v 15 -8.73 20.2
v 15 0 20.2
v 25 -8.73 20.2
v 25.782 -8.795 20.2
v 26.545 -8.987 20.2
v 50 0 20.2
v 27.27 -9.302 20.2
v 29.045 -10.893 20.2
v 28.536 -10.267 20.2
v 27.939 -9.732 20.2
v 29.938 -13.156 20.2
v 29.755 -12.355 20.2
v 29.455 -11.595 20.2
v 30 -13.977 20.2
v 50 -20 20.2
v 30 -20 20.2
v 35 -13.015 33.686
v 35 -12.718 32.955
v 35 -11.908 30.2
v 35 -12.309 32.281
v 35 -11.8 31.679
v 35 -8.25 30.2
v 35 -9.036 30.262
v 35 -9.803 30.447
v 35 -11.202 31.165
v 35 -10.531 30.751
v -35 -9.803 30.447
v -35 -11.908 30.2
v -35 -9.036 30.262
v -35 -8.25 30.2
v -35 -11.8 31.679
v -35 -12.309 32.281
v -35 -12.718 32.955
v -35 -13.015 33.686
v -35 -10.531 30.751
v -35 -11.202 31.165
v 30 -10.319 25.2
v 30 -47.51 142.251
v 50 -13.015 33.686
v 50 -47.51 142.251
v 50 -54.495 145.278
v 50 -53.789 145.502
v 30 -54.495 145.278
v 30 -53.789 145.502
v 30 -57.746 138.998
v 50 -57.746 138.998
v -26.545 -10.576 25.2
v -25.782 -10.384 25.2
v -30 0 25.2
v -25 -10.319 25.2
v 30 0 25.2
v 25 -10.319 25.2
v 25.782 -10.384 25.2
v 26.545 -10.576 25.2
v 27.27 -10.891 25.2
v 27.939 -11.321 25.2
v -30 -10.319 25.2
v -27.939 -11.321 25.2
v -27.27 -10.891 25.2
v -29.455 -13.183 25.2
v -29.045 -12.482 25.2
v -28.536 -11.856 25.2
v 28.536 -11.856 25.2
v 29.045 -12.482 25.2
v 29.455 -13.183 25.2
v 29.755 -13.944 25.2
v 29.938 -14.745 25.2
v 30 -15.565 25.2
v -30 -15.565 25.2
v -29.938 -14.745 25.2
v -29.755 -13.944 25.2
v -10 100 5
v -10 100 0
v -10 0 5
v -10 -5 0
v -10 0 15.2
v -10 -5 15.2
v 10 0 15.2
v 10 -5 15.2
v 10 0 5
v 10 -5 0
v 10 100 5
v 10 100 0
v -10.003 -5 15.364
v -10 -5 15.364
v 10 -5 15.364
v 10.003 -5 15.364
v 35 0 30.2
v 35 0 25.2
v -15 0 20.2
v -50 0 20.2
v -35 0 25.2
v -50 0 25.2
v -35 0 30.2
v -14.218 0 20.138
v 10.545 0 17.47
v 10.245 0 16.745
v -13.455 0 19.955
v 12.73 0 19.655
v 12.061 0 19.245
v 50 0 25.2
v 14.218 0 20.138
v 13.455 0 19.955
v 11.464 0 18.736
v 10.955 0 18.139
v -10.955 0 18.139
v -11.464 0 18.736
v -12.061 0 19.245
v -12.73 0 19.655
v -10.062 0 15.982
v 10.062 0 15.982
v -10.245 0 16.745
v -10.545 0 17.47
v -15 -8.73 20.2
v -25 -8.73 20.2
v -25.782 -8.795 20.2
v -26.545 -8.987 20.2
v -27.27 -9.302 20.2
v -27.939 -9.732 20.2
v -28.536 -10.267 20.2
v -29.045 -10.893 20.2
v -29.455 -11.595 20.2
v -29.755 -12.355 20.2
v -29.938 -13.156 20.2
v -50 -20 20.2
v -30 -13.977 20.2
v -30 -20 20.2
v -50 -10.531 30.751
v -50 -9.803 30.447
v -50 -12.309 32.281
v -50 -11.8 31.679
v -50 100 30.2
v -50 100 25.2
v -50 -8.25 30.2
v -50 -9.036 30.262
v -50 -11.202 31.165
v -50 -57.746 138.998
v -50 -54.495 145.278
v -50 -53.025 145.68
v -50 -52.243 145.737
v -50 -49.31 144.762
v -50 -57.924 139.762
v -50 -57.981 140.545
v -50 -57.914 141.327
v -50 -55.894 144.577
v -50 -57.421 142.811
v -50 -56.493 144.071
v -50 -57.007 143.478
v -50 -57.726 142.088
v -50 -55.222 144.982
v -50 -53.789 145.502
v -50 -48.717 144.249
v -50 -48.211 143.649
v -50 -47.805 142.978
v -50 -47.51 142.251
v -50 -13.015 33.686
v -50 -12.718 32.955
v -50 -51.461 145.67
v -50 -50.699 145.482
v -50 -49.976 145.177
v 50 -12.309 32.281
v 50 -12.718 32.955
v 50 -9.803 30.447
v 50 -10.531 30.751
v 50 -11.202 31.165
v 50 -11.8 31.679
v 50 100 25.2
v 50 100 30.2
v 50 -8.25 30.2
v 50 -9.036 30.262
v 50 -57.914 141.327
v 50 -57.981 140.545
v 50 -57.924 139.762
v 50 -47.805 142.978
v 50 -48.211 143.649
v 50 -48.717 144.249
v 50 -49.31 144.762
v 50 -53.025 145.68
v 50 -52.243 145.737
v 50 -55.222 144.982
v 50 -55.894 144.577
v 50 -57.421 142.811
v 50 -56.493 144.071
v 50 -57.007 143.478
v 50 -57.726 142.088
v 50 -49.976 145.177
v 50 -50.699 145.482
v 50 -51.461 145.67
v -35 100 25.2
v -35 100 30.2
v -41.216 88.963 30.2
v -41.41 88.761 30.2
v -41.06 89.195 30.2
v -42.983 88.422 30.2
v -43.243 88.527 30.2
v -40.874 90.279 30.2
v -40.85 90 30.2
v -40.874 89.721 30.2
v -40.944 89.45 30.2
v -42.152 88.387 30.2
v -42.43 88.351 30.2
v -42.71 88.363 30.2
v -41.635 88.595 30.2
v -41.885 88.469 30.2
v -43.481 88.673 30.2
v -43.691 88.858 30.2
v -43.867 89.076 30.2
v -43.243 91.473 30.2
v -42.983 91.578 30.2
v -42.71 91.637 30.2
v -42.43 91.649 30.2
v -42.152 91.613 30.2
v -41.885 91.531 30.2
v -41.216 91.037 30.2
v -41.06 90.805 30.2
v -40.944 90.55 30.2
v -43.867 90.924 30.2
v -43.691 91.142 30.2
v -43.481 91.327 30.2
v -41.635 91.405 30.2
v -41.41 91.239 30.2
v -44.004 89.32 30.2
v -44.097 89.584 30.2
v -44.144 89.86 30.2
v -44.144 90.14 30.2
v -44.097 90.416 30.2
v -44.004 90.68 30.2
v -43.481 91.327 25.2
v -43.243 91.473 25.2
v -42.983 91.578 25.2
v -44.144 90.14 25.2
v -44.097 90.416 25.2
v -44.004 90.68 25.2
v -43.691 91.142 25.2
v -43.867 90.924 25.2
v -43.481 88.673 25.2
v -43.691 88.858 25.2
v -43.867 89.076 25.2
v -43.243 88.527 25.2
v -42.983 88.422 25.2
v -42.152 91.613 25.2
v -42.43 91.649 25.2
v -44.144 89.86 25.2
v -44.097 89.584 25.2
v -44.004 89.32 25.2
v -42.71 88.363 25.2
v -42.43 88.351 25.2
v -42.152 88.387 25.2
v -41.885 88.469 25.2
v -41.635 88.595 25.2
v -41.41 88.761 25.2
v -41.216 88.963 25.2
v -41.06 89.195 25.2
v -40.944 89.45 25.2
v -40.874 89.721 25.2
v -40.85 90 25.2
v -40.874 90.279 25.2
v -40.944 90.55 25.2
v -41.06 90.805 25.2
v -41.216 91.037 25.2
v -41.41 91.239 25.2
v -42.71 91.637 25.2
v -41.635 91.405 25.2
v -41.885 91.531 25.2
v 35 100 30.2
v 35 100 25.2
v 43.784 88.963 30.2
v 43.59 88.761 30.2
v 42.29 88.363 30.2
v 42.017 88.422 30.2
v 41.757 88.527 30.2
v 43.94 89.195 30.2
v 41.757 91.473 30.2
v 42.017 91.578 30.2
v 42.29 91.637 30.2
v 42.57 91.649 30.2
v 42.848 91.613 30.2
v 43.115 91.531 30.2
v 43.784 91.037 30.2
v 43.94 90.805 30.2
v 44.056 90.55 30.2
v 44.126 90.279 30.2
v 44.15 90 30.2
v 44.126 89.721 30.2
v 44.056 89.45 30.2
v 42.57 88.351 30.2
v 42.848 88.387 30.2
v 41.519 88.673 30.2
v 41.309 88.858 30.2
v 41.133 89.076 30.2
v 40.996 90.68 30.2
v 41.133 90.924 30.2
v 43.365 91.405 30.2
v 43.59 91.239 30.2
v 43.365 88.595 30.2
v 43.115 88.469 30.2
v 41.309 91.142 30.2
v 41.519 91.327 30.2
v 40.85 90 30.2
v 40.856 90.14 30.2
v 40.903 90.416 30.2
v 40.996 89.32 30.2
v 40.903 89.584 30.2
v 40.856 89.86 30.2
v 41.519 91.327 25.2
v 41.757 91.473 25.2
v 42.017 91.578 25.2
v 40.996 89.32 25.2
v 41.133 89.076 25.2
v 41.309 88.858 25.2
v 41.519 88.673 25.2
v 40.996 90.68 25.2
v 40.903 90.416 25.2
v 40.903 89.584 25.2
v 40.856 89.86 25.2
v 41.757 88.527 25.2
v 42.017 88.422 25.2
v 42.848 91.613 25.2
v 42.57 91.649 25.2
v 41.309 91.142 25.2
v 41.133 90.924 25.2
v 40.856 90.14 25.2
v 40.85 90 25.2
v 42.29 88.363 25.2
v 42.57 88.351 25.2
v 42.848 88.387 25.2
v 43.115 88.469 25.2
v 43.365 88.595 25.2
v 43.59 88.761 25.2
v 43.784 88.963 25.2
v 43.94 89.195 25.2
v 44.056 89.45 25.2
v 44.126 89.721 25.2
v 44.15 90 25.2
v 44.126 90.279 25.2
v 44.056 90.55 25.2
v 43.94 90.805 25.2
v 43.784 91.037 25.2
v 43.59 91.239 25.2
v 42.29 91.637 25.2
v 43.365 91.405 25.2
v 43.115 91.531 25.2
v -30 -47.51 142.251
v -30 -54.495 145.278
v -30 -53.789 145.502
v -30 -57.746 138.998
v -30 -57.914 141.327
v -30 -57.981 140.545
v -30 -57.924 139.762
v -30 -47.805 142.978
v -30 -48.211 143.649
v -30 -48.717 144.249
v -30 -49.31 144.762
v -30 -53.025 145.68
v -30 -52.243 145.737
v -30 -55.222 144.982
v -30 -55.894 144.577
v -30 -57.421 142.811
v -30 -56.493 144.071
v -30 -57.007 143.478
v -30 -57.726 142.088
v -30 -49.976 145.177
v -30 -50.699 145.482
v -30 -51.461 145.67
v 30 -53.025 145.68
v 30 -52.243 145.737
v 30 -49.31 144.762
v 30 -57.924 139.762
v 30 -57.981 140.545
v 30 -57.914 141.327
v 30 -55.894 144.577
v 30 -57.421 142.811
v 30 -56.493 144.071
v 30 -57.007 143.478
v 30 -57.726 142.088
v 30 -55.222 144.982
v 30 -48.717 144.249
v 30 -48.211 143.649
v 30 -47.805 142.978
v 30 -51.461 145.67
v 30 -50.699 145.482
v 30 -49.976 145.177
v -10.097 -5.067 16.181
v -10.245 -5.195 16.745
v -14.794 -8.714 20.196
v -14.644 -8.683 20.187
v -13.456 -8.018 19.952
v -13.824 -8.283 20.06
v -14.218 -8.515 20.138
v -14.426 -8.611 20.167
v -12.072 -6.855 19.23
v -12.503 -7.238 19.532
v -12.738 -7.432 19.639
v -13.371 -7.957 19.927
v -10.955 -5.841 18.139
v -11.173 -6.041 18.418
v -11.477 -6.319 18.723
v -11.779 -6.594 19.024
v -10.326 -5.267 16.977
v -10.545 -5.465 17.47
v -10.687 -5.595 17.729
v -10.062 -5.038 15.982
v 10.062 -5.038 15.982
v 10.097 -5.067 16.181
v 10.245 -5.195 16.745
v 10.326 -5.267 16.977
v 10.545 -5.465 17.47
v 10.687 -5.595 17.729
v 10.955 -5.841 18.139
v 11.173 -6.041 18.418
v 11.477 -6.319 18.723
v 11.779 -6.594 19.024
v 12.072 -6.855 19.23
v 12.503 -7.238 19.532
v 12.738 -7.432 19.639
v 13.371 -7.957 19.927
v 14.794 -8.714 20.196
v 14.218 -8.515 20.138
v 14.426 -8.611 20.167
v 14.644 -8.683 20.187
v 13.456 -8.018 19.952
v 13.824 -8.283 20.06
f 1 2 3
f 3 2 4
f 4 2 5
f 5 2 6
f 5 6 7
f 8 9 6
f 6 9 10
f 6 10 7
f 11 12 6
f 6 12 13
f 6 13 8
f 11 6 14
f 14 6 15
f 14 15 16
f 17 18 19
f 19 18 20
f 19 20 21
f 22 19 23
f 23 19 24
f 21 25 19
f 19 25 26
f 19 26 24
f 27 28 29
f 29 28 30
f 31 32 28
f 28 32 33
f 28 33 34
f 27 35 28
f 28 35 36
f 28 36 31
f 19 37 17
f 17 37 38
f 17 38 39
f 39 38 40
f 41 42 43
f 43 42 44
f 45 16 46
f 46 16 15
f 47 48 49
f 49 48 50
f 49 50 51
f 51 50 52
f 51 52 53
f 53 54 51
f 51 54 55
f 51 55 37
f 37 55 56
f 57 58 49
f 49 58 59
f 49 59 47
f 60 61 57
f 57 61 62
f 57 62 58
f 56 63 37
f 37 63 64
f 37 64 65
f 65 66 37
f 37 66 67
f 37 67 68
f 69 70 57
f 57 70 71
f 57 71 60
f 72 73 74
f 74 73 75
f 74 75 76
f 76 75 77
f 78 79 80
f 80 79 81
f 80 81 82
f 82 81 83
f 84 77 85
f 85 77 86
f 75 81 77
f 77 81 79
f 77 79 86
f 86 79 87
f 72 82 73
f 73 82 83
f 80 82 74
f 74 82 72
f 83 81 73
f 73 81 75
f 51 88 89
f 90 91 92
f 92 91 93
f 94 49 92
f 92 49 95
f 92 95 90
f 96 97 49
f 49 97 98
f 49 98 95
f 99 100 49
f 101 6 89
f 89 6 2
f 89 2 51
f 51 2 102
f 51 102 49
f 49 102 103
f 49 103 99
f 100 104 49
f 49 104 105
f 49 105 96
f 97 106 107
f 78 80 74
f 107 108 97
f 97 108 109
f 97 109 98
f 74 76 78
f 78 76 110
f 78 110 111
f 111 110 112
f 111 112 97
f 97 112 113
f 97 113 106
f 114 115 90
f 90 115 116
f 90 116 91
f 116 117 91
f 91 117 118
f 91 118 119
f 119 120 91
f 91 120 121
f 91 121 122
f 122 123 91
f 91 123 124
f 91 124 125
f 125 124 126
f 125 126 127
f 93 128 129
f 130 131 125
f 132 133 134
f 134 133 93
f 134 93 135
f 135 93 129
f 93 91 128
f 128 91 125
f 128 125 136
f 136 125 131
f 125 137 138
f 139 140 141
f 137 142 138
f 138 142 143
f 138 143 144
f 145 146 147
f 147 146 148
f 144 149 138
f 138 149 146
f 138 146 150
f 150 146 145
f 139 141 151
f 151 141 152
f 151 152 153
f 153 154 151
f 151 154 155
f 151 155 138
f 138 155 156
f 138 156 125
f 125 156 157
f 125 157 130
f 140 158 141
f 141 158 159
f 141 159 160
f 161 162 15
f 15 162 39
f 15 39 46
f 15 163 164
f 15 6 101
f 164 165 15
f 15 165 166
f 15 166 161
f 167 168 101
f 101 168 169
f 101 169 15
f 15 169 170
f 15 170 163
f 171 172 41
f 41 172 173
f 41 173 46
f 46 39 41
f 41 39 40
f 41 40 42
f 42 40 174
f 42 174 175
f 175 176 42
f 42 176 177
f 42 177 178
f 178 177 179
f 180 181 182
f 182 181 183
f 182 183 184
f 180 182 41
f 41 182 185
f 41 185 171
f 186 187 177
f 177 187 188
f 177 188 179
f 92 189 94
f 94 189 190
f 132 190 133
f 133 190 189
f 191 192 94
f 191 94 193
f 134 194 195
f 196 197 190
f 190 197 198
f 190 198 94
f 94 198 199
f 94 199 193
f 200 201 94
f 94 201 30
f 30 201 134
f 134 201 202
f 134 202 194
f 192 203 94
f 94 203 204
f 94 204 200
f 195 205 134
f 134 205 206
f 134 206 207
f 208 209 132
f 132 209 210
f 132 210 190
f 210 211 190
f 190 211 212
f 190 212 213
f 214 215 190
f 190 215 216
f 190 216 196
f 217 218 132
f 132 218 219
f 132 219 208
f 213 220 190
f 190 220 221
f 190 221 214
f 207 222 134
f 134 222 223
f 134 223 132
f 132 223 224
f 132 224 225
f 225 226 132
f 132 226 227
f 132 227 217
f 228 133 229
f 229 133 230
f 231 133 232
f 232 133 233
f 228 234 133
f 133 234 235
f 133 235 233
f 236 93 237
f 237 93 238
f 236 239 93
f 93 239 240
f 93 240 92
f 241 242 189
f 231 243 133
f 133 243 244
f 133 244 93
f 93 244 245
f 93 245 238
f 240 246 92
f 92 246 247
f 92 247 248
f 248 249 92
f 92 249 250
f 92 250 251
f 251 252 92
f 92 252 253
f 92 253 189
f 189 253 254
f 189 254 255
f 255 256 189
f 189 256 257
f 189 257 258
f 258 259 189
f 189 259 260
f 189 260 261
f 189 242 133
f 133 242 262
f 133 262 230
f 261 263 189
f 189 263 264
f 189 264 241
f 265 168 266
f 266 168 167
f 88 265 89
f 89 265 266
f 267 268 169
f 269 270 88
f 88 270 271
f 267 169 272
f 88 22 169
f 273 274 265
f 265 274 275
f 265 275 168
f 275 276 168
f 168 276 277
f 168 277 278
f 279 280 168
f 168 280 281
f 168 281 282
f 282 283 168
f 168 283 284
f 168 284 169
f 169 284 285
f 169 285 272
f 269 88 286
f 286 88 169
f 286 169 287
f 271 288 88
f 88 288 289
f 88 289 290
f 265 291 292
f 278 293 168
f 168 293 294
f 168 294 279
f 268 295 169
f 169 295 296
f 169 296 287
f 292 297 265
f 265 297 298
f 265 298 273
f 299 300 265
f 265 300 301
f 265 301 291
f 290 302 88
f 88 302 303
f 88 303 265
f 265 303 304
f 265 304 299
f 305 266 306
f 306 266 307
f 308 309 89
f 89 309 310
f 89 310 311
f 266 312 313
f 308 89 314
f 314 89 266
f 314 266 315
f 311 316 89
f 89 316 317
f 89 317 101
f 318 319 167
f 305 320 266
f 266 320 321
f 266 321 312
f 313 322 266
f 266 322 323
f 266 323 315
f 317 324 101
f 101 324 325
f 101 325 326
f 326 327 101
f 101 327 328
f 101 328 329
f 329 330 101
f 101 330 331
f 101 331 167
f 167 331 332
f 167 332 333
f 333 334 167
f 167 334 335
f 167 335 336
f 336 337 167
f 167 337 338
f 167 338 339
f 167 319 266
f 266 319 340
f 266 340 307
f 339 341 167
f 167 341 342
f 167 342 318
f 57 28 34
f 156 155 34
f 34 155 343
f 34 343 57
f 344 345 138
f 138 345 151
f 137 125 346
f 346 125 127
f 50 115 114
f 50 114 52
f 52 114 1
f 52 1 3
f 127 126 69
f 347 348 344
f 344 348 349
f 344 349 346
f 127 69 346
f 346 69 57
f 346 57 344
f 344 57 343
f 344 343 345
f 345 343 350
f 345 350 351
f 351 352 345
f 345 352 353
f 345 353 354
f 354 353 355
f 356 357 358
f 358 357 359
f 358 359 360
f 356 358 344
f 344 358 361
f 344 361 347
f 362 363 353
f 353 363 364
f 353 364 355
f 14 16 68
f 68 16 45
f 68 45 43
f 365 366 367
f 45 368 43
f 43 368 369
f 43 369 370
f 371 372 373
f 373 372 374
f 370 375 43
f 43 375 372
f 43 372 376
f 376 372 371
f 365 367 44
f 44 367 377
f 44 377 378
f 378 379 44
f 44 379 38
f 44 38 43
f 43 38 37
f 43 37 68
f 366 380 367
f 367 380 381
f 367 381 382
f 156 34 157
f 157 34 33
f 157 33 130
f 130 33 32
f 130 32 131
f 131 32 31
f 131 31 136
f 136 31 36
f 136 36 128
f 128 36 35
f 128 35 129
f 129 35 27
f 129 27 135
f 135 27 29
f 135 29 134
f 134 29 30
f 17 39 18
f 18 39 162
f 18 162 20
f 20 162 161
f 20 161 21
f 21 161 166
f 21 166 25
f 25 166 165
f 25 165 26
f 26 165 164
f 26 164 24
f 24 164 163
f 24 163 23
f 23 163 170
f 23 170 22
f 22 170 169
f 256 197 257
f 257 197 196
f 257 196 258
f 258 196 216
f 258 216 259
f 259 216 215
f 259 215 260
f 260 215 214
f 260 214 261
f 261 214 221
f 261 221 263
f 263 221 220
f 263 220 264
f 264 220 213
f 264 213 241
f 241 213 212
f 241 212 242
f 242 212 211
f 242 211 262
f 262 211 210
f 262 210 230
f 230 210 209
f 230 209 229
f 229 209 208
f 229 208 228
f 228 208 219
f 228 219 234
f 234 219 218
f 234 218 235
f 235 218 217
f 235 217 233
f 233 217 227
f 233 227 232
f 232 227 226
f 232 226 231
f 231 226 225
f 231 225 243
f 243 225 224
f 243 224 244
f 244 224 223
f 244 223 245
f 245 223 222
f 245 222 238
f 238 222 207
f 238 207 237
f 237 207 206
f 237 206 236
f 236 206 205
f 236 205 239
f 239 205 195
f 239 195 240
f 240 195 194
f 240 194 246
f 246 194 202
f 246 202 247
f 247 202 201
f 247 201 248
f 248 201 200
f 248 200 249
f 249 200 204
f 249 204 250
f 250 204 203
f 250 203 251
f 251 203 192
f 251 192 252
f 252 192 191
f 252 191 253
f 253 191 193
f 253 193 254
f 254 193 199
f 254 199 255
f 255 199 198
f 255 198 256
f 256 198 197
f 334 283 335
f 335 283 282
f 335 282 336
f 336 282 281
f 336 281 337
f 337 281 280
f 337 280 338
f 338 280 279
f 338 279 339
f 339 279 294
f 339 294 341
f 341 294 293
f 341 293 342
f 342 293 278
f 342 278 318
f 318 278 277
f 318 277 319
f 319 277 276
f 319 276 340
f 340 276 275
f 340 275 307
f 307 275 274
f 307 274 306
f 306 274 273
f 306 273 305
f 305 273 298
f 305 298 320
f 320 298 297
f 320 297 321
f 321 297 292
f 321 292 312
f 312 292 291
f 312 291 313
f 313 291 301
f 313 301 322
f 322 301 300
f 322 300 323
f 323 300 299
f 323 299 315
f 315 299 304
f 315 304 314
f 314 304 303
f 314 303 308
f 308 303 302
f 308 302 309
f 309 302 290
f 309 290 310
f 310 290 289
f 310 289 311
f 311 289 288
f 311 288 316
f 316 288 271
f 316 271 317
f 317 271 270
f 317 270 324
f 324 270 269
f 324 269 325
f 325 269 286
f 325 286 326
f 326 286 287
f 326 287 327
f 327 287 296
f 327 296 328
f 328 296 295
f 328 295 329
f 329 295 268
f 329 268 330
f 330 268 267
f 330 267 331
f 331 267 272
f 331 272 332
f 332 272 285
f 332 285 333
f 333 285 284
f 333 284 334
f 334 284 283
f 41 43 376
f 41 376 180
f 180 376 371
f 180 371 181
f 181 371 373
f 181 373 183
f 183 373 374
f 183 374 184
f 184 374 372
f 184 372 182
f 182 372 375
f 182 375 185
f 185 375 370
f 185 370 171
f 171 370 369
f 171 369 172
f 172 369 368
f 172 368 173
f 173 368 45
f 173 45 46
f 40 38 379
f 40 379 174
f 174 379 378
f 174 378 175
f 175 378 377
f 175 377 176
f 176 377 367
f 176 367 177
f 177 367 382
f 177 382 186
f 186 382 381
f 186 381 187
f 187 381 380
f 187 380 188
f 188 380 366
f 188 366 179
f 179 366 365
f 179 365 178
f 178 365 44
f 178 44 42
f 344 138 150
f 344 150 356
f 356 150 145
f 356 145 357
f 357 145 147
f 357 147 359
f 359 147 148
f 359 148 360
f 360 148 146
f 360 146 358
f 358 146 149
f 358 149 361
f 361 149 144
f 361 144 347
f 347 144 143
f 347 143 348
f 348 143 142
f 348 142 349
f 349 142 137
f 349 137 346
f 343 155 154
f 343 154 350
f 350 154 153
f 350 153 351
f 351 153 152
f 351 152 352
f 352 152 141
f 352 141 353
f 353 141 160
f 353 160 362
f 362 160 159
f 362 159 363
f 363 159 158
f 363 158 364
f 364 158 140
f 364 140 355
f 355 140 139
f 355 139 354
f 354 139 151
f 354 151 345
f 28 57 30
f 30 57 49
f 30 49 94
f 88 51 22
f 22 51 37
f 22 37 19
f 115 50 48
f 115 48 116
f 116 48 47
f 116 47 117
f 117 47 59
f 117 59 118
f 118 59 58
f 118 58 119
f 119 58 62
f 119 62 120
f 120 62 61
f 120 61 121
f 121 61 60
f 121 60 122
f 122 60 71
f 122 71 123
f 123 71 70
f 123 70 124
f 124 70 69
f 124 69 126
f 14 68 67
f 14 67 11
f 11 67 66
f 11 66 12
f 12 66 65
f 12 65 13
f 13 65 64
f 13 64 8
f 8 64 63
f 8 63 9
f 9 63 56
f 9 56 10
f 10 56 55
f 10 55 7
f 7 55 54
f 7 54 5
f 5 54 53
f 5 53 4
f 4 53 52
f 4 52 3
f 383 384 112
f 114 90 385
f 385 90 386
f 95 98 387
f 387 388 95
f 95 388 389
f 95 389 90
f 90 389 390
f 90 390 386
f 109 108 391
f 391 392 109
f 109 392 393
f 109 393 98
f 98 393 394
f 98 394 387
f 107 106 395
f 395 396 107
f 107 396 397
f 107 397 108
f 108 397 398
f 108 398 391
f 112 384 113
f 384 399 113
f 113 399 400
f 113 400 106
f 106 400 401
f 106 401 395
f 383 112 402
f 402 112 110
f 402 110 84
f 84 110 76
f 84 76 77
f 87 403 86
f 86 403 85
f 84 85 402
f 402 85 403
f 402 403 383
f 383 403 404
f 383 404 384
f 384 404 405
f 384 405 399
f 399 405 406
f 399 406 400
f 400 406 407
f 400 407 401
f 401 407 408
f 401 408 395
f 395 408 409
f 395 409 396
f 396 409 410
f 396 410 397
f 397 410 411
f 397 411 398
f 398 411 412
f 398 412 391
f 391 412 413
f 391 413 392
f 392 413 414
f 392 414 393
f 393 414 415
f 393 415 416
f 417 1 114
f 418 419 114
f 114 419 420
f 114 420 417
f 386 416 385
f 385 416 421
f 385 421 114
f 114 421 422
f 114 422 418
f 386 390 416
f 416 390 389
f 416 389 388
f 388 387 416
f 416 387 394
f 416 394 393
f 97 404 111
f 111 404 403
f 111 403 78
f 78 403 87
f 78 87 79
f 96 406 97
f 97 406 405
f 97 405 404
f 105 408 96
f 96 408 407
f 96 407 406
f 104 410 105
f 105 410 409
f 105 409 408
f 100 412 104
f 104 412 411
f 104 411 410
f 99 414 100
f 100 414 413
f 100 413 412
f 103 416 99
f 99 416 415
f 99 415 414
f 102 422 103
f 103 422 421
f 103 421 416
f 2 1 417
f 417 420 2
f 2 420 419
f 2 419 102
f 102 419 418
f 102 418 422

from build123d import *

# Parameters (mm, degrees)
EXTRUDE_1_DEPTH     = 5
EXTRUDE_2_DEPTH     = 5
EXTRUDE_3_DEPTH     = 5
EXTRUDE_4_DEPTH     = 5
EXTRUDE_5_DEPTH     = 50
CUT_EXTRUDE_1_DEPTH = 30
FILLET_1_R          = 5
SKETCH_6_R          = 1.6499999999999952
CUT_EXTRUDE_2_DEPTH = 60
FILLET_2_R          = 5
CHAMFER_1_SIZE      = 5
FILLET_3_R          = 5
FILLET_4_R          = 5


# Some blends are built 0.0001 mm under size
with BuildPart() as part:
    # 스케치1 → 보스-돌출1 (new body)
    with BuildSketch(Plane.XY):
        Polygon((-10.000000000000016, 100), (10.000000000000016, 100), (10.000000000000002, 0), (-10.000000000000002, 0), align=None)
    extrude(amount=EXTRUDE_1_DEPTH)

    # 스케치2 → 보스-돌출2 (add)
    with BuildSketch(Plane(origin=(0, 0, 0), x_dir=(1, 0, 0), z_dir=(0, 1, 0))):
        Polygon((-10.000000000000002, 0), (10.000000000000002, 0), (10.000000000000005, -25.2), (-9.999999999999998, -25.2), align=None)
    extrude(amount=-EXTRUDE_2_DEPTH)

    # 스케치3 → 보스-돌출3 (add)
    with BuildSketch(Plane.XY.offset(25.2)):
        Polygon((-50, 0), (50, 0), (50, -19.999999999999986), (-50, -20), align=None)
    extrude(amount=-EXTRUDE_3_DEPTH)

    # 스케치4 → 보스-돌출4 (add)
    with BuildSketch(Plane.XY.offset(25.2)):
        Polygon((50, -19.999999999999996), (35, -19.999999999999996), (34.99999999999999, 100.00000000000001), (49.999999999999986, 100.00000000000001), align=None)
        Polygon((-50.000000000000014, 100), (-35.000000000000014, 100), (-35, -19.999999999999996), (-50, -19.999999999999996), align=None)
    extrude(amount=EXTRUDE_4_DEPTH)

    # 스케치5 → 보스-돌출5 (add, symmetric)
    with BuildSketch(Plane(origin=(0, 0, 0), x_dir=(0, 0, -1), z_dir=(1, 0, 0))):
        Polygon((-20.2, -20), (-143.76355340335743, -59.26033642854078), (-147.01597593744285, -49.02402869306782), (-20.2, -8.730287191761477), align=None)
    extrude(amount=EXTRUDE_5_DEPTH, both=True)

    # 스케치5<3> → 컷-돌출1 (cut, symmetric)
    with BuildSketch(Plane(origin=(0, 0, 0), x_dir=(0, 0, -1), z_dir=(1, 0, 0))):
        Polygon((-20.2, -20), (-143.76355340335743, -59.26033642854078), (-147.01597593744285, -49.02402869306782), (-20.2, -8.730287191761477), align=None)
    extrude(amount=CUT_EXTRUDE_1_DEPTH, both=True, mode=Mode.SUBTRACT)

    # 필렛1
    fillet_1_edges = [part.edges().sort_by_distance(p)[0] for p in [
        (42.5, -11.90762673462655, 30.199999999999996),
        (-42.5, -11.90762673462655, 30.199999999999996),
    ]]
    fillet(fillet_1_edges, radius=FILLET_1_R)

    # 스케치6 → 컷-돌출2 (cut)
    with BuildSketch(Plane.XY.offset(30.200000000000003)):
        with Locations((-42.500000000000014, 90.00000000000001)):
            Circle(SKETCH_6_R)
        with Locations(Location((42.500000000000014, 90.00000000000001, 0), (0, 0, 180))):
            Circle(SKETCH_6_R)
    extrude(amount=-CUT_EXTRUDE_2_DEPTH, mode=Mode.SUBTRACT)

    # 필렛2
    fillet_2_edges = [part.edges().sort_by_distance(p)[0] for p in [
        (-40, -59.26033642854078, 143.76355340335743),
        (-40, -49.02402869306782, 147.01597593744285),
        (40, -49.02402869306782, 147.01597593744285),
        (40, -59.26033642854078, 143.76355340335743),
    ]]
    fillet(fillet_2_edges, radius=FILLET_2_R)

    # 모따기1
    chamfer_1_edges = [part.edges().sort_by_distance(p)[0] for p in [
        (-35, -5.159478481597006, 25.2),
        (35, -5.159478481597006, 25.2),
    ]]
    chamfer(chamfer_1_edges, length=CHAMFER_1_SIZE - 0.0001)  # a hair under: the kernel refuses the full size

    # 필렛3
    fillet_3_edges = [part.edges().sort_by_distance(p)[0] for p in [
        (30, -9.52462207747773, 22.699999999999974),
        (-30, -9.52462207747773, 22.699999999999974),
    ]]
    fillet(fillet_3_edges, radius=FILLET_3_R)

    # 필렛4
    # the kernel refuses this fillet: 5 mm, written as the material it adds along each edge
    with BuildSketch(Plane(origin=(10, -5, 20.2), x_dir=(1, -1.4e-16, 0), z_dir=(1.4e-16, 1, 0)), Plane(origin=(-10, 0, 20.2), x_dir=(-1, -1.4e-16, 0), z_dir=(1.4e-16, -1, 0))) as fillet_4_piece_1:
        with BuildLine():
            CenterArc((FILLET_4_R, FILLET_4_R), FILLET_4_R, 180, 90)
            Line((0, FILLET_4_R), (-FILLET_4_R * 0.02, FILLET_4_R))
            Line((-FILLET_4_R * 0.02, FILLET_4_R), (-FILLET_4_R * 0.02, -FILLET_4_R * 0.02))
            Line((-FILLET_4_R * 0.02, -FILLET_4_R * 0.02), (FILLET_4_R, -FILLET_4_R * 0.02))
            Line((FILLET_4_R, -FILLET_4_R * 0.02), (FILLET_4_R, 0))
        make_face()
    extrude(amount=5)
    with BuildSketch(Plane(origin=(-10.000000000000004, -5, 20.2), x_dir=(0, -1, 0), z_dir=(1, 0, 0))) as fillet_4_piece_2:
        with BuildLine():
            CenterArc((5, 4.8360965028207445), FILLET_4_R, 180, 75.28906399659809)
            Line((0, 4.8360965028207445), (-0.09999999999999964, 4.8360965028207445))
            Line((-0.09999999999999964, 4.8360965028207445), (-0.09999999999999964, 0))
            Line((-0.09999999999999964, 0), (0, -0.10000000000000142))
            ThreePointArc((0, -0.10000000000000142), (1.8651435958807383, -0.10000000000000142), (3.704892935596707, -0.0967219300564146))
            Line((3.704892935596707, -0.0967219300564146), (3.7302871917614766, 0))
        make_face()
    extrude(amount=20.000000000000007)
    with BuildSketch(Plane(origin=(-10.000000000000004, -5, 20.2), x_dir=(0, -1, 0), z_dir=(1, 0, 0))) as fillet_4_piece_3a_section:
        with BuildLine():
            CenterArc((5, 4.8360965028207445), FILLET_4_R, 180, 75.28906399659809)
            Line((0, 4.8360965028207445), (-0.09999999999999964, 4.8360965028207445))
            Line((-0.09999999999999964, 4.8360965028207445), (-0.09999999999999964, 0))
            Line((-0.09999999999999964, 0), (0, -0.10000000000000142))
            ThreePointArc((0, -0.10000000000000142), (1.8651435958807383, -0.10000000000000142), (3.704892935596707, -0.0967219300564146))
            Line((3.704892935596707, -0.0967219300564146), (3.7302871917614766, 0))
        make_face()
    fillet_4_piece_3a = extrude(amount=32.09024125705187, mode=Mode.PRIVATE)
    fillet_4_piece_3a = split(fillet_4_piece_3a, bisect_by=Plane(origin=(10.000000000000004, -5.000000000000003, 20.2), z_dir=(1, -1.4e-16, 0)), keep=Keep.TOP, mode=Mode.PRIVATE)
    with BuildSketch(Plane(origin=(9.999999999999998, -17.5, 20.2), x_dir=(1, -1.4e-16, 0), z_dir=(1.4e-16, 1, 0))) as fillet_4_piece_3b_section:
        with BuildLine():
            CenterArc((FILLET_4_R, FILLET_4_R), FILLET_4_R, 180, 90)
            Line((0, FILLET_4_R), (-FILLET_4_R * 0.02, FILLET_4_R))
            Line((-FILLET_4_R * 0.02, FILLET_4_R), (-FILLET_4_R * 0.02, -FILLET_4_R * 0.02))
            Line((-FILLET_4_R * 0.02, -FILLET_4_R * 0.02), (FILLET_4_R, -FILLET_4_R * 0.02))
            Line((FILLET_4_R, -FILLET_4_R * 0.02), (FILLET_4_R, 0))
        make_face()
    fillet_4_piece_3b = extrude(amount=17.5, mode=Mode.PRIVATE)
    fillet_4_piece_3b = split(fillet_4_piece_3b, bisect_by=Plane(origin=(9.999999999999998, -9.534448385301843, 22.730926212611323), z_dir=(0, 0.9530490272330943, 0.3028160360516808)), keep=Keep.TOP, mode=Mode.PRIVATE)
    fillet_4_piece_3b = split(fillet_4_piece_3b, bisect_by=Plane(origin=(9.999999999999998, -5, 20.2), z_dir=(0, -1, 0)), keep=Keep.TOP, mode=Mode.PRIVATE)
    fillet_4_piece_3 = fillet_4_piece_3a & fillet_4_piece_3b
    add(fillet_4_piece_3)
    with BuildSketch(Plane(origin=(-10, 0, 20.2), x_dir=(-1, -1.4e-16, 0), z_dir=(1.4e-16, -1, 0))) as fillet_4_piece_4a_section:
        with BuildLine():
            CenterArc((FILLET_4_R, FILLET_4_R), FILLET_4_R, 180, 90)
            Line((0, FILLET_4_R), (-FILLET_4_R * 0.02, FILLET_4_R))
            Line((-FILLET_4_R * 0.02, FILLET_4_R), (-FILLET_4_R * 0.02, -FILLET_4_R * 0.02))
            Line((-FILLET_4_R * 0.02, -FILLET_4_R * 0.02), (FILLET_4_R, -FILLET_4_R * 0.02))
            Line((FILLET_4_R, -FILLET_4_R * 0.02), (FILLET_4_R, 0))
        make_face()
    fillet_4_piece_4a = extrude(amount=17.5, mode=Mode.PRIVATE)
    fillet_4_piece_4a = split(fillet_4_piece_4a, bisect_by=Plane(origin=(-10, -7.929741230725918, 17.680451962292693), z_dir=(0, 0.9530490272330943, 0.3028160360516808)), keep=Keep.TOP, mode=Mode.PRIVATE)
    fillet_4_piece_4a = split(fillet_4_piece_4a, bisect_by=Plane(origin=(-10, -5, 20.2), z_dir=(0, -1, 0)), keep=Keep.TOP, mode=Mode.PRIVATE)
    with BuildSketch(Plane(origin=(-22.090241257051865, -5, 20.2), x_dir=(0, -1, 0), z_dir=(1, 0, 0))) as fillet_4_piece_4b_section:
        with BuildLine():
            CenterArc((5, 4.8360965028207445), FILLET_4_R, 180, 75.28906399659809)
            Line((0, 4.8360965028207445), (-0.09999999999999964, 4.8360965028207445))
            Line((-0.09999999999999964, 4.8360965028207445), (-0.09999999999999964, 0))
            Line((-0.09999999999999964, 0), (0, -0.10000000000000142))
            ThreePointArc((0, -0.10000000000000142), (1.8651435958807383, -0.10000000000000142), (3.704892935596707, -0.0967219300564146))
            Line((3.704892935596707, -0.0967219300564146), (3.7302871917614766, 0))
        make_face()
    fillet_4_piece_4b = extrude(amount=32.09024125705187, mode=Mode.PRIVATE)
    fillet_4_piece_4b = split(fillet_4_piece_4b, bisect_by=Plane(origin=(-10.000000000000002, -4.999999999999998, 20.2), z_dir=(-1, -1.4e-16, 0)), keep=Keep.TOP, mode=Mode.PRIVATE)
    fillet_4_piece_4 = fillet_4_piece_4a & fillet_4_piece_4b
    add(fillet_4_piece_4)


solid = part.part
